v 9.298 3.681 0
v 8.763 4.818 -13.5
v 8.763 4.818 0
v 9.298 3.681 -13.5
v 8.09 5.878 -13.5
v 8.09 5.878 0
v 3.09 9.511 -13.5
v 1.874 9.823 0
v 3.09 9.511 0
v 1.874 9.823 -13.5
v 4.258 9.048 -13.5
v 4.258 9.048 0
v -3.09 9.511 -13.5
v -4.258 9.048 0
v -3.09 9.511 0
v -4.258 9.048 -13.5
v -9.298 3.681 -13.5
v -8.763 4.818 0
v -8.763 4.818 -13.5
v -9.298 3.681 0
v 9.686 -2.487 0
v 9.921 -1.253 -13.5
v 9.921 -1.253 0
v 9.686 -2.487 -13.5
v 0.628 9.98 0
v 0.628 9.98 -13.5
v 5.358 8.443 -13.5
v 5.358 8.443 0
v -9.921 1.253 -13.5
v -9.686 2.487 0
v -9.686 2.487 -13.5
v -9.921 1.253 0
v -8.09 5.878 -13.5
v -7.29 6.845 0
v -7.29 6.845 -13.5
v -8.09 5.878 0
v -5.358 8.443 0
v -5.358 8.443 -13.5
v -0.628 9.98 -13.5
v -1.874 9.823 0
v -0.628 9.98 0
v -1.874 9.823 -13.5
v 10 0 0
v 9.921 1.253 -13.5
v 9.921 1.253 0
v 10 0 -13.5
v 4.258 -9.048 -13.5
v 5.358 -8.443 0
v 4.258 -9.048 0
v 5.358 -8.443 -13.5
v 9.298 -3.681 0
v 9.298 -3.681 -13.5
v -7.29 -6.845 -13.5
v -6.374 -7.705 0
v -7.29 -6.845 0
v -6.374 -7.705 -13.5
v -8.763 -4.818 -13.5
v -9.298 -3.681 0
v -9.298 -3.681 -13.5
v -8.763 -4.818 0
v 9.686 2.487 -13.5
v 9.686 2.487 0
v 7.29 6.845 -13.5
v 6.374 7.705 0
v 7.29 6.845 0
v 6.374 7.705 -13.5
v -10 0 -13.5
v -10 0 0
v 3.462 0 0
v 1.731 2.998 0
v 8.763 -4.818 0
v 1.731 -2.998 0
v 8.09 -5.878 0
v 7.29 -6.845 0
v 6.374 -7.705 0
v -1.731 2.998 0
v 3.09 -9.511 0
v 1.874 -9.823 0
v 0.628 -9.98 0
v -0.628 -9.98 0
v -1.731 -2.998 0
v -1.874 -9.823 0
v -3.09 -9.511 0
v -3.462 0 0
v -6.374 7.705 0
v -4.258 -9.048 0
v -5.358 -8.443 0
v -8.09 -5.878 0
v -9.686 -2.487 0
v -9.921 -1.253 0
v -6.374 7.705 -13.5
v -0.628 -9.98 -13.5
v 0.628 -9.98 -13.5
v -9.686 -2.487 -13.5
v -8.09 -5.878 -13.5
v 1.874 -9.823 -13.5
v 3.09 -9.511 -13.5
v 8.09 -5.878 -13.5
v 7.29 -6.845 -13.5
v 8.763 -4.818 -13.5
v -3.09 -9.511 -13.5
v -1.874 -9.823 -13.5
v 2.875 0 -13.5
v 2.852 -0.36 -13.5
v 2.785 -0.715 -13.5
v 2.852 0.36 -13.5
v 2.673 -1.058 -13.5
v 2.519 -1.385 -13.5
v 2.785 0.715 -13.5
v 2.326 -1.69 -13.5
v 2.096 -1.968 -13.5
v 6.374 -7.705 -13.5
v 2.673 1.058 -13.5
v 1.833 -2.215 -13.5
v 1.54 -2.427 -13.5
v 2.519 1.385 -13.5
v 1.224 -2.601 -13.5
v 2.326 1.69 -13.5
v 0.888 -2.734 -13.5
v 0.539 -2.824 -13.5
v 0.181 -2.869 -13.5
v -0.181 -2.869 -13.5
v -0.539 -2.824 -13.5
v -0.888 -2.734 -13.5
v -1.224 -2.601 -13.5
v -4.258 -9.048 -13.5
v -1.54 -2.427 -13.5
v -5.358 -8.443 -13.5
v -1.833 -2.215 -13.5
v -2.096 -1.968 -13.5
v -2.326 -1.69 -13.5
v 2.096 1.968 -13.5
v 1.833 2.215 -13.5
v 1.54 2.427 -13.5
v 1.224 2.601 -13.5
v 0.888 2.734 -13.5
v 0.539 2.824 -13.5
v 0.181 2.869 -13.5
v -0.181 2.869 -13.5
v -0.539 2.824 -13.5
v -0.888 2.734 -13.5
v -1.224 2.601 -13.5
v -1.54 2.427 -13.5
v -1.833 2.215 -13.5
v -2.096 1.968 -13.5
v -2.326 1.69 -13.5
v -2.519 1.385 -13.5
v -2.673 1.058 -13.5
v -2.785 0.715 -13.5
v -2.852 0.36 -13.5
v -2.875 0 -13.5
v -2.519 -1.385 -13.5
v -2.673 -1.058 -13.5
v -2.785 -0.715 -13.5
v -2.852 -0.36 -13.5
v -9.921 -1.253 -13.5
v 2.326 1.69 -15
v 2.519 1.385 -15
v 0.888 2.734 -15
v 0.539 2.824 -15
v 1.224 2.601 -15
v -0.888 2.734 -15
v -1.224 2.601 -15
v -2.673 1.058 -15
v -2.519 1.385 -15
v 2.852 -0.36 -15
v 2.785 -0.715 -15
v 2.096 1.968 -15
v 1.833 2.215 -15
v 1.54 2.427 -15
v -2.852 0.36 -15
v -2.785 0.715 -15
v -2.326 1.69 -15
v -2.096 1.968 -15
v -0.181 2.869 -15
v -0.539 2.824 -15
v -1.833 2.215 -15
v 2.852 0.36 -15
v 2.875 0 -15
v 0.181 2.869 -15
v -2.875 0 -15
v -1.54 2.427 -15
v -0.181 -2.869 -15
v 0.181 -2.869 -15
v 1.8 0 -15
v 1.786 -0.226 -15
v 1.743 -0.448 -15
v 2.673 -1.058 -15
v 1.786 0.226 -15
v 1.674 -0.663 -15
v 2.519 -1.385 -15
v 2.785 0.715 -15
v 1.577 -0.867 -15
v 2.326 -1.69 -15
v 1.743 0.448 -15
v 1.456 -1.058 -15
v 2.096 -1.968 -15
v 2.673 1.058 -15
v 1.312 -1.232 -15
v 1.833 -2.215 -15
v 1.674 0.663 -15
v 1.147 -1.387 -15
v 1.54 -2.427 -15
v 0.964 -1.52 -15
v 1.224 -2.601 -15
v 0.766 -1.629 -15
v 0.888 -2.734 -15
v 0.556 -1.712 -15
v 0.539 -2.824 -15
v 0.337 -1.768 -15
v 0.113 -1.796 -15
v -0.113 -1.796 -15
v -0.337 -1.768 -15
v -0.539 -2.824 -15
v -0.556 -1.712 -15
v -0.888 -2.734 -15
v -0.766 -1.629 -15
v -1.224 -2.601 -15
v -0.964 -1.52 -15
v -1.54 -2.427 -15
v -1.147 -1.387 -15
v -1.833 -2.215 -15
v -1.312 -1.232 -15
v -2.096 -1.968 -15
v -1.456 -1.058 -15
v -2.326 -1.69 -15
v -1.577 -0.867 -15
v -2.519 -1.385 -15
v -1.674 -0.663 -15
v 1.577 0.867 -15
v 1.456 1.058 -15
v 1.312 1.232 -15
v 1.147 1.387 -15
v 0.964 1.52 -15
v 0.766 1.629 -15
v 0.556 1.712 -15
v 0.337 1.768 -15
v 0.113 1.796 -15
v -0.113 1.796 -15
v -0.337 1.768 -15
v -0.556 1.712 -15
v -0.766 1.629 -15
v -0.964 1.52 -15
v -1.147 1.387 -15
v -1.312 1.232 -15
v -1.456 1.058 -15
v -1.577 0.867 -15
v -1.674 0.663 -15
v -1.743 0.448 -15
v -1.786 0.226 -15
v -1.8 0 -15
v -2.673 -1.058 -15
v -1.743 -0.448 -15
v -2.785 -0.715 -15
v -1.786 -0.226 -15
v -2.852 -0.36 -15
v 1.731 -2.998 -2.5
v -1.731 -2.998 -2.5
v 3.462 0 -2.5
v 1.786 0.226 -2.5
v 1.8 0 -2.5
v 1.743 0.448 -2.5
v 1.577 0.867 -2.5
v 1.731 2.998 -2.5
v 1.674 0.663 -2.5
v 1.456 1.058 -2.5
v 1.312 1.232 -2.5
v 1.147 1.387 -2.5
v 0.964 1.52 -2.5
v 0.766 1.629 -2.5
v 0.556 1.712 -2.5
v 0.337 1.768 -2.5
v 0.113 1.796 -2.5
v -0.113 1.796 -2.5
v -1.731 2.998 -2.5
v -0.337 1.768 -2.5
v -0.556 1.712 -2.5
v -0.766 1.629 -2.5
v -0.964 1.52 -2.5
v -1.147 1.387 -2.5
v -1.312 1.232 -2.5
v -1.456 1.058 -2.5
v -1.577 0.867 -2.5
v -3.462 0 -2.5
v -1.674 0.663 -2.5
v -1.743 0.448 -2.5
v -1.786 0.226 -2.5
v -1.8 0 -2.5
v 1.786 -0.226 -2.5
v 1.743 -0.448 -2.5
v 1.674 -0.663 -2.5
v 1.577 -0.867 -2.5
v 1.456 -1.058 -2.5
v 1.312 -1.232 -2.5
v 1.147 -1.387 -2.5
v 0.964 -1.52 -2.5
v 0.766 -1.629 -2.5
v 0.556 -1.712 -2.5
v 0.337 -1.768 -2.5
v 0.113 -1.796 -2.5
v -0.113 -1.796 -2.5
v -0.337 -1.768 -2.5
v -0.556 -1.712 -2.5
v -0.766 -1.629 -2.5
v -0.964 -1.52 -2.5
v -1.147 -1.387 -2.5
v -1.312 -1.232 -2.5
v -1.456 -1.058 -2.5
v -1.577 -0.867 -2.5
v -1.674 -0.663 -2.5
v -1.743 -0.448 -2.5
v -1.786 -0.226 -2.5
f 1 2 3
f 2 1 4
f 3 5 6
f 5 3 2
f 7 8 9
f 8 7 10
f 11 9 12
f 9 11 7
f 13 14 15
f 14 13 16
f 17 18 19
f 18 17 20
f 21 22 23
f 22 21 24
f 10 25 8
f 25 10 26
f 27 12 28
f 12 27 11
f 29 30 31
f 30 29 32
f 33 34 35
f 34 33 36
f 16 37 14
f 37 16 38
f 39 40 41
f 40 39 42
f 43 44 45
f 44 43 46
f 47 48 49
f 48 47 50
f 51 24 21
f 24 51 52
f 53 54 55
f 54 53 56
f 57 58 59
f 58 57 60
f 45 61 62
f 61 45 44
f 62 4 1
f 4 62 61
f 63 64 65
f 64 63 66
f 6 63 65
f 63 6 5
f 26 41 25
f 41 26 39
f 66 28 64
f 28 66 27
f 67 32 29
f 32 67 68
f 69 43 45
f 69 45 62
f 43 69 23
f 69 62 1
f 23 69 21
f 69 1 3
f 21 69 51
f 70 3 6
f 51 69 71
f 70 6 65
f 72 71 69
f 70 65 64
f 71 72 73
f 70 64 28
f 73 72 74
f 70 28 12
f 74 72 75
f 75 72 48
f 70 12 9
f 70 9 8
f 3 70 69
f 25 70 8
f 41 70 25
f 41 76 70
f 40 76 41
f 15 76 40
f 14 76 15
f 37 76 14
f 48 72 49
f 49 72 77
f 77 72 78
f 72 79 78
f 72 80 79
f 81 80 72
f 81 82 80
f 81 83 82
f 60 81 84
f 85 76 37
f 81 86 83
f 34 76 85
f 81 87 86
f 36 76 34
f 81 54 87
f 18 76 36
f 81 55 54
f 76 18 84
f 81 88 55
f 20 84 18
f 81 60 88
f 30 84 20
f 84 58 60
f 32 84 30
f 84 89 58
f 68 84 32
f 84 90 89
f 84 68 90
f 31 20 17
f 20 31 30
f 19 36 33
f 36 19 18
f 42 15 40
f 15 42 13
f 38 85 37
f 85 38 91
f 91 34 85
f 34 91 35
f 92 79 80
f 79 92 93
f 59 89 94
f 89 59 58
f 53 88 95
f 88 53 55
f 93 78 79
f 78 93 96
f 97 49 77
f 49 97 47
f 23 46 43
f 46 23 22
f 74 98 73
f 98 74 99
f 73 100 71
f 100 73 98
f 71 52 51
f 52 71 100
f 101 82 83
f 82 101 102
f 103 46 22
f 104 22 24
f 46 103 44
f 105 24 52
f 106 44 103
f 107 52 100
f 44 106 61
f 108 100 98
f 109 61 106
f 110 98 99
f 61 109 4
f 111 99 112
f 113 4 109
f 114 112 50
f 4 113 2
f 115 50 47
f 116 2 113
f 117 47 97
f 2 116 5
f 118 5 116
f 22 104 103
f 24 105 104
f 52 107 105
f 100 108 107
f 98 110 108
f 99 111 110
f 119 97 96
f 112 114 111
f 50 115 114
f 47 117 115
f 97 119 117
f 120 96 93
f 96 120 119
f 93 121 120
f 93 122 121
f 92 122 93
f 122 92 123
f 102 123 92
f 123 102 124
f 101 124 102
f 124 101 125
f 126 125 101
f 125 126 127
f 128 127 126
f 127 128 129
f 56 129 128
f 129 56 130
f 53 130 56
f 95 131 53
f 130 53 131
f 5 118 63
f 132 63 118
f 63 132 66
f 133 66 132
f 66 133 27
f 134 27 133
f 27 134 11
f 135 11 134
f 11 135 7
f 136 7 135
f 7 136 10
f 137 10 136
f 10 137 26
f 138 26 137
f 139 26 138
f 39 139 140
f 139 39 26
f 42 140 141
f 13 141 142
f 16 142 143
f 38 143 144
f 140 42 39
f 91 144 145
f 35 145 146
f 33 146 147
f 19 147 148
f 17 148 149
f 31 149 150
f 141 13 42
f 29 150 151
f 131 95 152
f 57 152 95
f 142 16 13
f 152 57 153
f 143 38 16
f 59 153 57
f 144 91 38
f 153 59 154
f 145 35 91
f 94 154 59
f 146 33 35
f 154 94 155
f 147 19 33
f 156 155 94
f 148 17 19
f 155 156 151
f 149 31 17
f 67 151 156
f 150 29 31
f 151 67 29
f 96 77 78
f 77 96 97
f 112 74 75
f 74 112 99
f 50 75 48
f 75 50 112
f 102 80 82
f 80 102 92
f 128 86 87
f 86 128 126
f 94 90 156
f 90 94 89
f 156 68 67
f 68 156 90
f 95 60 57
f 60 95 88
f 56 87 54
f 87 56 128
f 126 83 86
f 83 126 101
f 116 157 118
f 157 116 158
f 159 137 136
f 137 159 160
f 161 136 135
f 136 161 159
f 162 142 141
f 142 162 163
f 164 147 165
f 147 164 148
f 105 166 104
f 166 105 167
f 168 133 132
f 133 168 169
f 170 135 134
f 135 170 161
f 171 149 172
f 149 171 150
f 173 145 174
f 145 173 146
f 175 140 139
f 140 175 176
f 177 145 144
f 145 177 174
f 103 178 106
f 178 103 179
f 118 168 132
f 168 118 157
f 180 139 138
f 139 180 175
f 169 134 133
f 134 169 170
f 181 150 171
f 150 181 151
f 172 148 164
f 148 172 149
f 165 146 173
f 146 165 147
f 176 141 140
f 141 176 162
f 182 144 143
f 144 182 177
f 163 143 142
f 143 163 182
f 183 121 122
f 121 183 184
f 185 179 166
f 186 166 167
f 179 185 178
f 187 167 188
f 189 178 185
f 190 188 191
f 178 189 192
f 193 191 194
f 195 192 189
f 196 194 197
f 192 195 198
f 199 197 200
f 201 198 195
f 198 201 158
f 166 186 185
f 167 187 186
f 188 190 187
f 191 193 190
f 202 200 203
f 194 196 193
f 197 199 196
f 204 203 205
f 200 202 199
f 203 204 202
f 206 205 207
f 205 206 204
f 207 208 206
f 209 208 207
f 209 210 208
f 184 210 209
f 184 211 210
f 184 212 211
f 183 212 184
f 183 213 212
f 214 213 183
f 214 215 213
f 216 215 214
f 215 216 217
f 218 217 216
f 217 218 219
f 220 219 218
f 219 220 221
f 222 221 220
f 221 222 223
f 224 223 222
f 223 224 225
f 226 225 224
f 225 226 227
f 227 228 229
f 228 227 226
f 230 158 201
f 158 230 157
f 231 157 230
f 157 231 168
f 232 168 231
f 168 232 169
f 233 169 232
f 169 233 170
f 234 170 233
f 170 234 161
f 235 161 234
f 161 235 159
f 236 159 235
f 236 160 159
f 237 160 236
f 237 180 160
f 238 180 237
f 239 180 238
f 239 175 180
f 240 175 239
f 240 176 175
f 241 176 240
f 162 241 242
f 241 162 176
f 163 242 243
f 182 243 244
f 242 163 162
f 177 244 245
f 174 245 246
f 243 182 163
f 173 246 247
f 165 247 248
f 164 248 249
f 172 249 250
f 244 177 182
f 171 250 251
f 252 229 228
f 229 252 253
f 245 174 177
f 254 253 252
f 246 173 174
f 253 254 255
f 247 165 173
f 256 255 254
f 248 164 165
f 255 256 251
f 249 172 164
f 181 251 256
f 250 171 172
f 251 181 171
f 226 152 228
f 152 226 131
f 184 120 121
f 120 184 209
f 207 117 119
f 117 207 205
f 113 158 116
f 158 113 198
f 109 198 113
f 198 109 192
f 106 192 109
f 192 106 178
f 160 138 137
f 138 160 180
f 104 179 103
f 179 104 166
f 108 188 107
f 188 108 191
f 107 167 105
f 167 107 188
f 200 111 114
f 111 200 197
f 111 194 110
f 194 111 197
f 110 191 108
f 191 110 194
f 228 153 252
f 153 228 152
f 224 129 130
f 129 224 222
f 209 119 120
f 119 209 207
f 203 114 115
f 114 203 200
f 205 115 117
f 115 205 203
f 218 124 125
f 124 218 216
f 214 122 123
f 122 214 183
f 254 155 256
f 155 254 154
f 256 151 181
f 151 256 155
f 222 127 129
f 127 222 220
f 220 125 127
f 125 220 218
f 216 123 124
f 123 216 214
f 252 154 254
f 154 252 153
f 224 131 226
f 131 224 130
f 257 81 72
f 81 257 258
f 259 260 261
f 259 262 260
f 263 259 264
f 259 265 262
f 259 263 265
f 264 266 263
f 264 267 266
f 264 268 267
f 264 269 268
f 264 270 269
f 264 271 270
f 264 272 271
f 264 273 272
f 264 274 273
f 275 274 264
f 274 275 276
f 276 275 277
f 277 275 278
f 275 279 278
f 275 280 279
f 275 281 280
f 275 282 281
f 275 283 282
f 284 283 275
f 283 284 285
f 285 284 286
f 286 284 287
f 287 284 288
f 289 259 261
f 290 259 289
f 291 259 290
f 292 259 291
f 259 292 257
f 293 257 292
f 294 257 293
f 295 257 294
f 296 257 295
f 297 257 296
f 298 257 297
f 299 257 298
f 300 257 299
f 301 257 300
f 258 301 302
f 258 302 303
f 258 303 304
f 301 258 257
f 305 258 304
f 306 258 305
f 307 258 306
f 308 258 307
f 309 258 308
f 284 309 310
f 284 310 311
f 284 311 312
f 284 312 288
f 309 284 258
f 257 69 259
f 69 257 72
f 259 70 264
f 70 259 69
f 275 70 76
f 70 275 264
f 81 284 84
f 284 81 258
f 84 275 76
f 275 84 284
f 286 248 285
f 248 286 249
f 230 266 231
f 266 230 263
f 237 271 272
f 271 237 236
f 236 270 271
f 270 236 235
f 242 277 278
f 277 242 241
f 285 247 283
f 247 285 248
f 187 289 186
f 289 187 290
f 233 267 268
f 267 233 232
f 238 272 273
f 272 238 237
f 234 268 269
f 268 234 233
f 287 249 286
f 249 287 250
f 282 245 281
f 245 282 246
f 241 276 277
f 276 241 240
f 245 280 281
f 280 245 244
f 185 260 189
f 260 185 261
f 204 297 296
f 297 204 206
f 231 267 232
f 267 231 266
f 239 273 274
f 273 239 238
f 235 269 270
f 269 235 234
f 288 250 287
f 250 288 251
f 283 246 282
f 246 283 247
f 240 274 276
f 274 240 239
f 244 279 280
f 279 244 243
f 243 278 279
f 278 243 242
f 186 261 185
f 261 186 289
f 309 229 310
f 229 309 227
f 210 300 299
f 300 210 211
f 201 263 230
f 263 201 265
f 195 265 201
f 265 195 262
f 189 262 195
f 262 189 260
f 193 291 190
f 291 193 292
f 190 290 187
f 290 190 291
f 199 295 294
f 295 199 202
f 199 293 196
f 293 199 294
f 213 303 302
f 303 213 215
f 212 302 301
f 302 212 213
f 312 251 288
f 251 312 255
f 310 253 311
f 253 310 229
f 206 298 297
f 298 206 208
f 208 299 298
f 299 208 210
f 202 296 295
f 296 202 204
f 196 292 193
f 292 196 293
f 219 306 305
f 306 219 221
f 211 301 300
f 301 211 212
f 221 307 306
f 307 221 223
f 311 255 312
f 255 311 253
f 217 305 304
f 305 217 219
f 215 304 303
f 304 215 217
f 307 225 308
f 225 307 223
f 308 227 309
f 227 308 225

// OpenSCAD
$fn = 50;

difference() {
	union() {
		translate(v = [0, 0, -13.5]) {
			cylinder(h = 13.5, r = 10.0);
		}
		#translate(v = [0, 0, -15.0]) {
			cylinder(h = 15, r = 2.875);
		}
	}
	union() {
		translate(v = [0, 0, 0]) {
			rotate(a = [0, 0, 0]) {
				difference() {
					union() {
						translate(v = [0, 0, -2.5]) {
							linear_extrude(height = 2.5) {
								polygon(points = [[3.4619999999999997, 0.0], [1.7310000000000003, 2.9981799479017264], [-1.7309999999999992, 2.9981799479017264], [-3.4619999999999997, 4.2397272186481365e-16], [-1.7310000000000014, -2.998179947901726], [1.7309999999999977, -2.9981799479017277]]);
							}
						}
					}
					union();
				}
			}
		}
		#translate(v = [0, 0, -100.0]) {
			cylinder(h = 200, r = 1.8);
		}
	}
}
